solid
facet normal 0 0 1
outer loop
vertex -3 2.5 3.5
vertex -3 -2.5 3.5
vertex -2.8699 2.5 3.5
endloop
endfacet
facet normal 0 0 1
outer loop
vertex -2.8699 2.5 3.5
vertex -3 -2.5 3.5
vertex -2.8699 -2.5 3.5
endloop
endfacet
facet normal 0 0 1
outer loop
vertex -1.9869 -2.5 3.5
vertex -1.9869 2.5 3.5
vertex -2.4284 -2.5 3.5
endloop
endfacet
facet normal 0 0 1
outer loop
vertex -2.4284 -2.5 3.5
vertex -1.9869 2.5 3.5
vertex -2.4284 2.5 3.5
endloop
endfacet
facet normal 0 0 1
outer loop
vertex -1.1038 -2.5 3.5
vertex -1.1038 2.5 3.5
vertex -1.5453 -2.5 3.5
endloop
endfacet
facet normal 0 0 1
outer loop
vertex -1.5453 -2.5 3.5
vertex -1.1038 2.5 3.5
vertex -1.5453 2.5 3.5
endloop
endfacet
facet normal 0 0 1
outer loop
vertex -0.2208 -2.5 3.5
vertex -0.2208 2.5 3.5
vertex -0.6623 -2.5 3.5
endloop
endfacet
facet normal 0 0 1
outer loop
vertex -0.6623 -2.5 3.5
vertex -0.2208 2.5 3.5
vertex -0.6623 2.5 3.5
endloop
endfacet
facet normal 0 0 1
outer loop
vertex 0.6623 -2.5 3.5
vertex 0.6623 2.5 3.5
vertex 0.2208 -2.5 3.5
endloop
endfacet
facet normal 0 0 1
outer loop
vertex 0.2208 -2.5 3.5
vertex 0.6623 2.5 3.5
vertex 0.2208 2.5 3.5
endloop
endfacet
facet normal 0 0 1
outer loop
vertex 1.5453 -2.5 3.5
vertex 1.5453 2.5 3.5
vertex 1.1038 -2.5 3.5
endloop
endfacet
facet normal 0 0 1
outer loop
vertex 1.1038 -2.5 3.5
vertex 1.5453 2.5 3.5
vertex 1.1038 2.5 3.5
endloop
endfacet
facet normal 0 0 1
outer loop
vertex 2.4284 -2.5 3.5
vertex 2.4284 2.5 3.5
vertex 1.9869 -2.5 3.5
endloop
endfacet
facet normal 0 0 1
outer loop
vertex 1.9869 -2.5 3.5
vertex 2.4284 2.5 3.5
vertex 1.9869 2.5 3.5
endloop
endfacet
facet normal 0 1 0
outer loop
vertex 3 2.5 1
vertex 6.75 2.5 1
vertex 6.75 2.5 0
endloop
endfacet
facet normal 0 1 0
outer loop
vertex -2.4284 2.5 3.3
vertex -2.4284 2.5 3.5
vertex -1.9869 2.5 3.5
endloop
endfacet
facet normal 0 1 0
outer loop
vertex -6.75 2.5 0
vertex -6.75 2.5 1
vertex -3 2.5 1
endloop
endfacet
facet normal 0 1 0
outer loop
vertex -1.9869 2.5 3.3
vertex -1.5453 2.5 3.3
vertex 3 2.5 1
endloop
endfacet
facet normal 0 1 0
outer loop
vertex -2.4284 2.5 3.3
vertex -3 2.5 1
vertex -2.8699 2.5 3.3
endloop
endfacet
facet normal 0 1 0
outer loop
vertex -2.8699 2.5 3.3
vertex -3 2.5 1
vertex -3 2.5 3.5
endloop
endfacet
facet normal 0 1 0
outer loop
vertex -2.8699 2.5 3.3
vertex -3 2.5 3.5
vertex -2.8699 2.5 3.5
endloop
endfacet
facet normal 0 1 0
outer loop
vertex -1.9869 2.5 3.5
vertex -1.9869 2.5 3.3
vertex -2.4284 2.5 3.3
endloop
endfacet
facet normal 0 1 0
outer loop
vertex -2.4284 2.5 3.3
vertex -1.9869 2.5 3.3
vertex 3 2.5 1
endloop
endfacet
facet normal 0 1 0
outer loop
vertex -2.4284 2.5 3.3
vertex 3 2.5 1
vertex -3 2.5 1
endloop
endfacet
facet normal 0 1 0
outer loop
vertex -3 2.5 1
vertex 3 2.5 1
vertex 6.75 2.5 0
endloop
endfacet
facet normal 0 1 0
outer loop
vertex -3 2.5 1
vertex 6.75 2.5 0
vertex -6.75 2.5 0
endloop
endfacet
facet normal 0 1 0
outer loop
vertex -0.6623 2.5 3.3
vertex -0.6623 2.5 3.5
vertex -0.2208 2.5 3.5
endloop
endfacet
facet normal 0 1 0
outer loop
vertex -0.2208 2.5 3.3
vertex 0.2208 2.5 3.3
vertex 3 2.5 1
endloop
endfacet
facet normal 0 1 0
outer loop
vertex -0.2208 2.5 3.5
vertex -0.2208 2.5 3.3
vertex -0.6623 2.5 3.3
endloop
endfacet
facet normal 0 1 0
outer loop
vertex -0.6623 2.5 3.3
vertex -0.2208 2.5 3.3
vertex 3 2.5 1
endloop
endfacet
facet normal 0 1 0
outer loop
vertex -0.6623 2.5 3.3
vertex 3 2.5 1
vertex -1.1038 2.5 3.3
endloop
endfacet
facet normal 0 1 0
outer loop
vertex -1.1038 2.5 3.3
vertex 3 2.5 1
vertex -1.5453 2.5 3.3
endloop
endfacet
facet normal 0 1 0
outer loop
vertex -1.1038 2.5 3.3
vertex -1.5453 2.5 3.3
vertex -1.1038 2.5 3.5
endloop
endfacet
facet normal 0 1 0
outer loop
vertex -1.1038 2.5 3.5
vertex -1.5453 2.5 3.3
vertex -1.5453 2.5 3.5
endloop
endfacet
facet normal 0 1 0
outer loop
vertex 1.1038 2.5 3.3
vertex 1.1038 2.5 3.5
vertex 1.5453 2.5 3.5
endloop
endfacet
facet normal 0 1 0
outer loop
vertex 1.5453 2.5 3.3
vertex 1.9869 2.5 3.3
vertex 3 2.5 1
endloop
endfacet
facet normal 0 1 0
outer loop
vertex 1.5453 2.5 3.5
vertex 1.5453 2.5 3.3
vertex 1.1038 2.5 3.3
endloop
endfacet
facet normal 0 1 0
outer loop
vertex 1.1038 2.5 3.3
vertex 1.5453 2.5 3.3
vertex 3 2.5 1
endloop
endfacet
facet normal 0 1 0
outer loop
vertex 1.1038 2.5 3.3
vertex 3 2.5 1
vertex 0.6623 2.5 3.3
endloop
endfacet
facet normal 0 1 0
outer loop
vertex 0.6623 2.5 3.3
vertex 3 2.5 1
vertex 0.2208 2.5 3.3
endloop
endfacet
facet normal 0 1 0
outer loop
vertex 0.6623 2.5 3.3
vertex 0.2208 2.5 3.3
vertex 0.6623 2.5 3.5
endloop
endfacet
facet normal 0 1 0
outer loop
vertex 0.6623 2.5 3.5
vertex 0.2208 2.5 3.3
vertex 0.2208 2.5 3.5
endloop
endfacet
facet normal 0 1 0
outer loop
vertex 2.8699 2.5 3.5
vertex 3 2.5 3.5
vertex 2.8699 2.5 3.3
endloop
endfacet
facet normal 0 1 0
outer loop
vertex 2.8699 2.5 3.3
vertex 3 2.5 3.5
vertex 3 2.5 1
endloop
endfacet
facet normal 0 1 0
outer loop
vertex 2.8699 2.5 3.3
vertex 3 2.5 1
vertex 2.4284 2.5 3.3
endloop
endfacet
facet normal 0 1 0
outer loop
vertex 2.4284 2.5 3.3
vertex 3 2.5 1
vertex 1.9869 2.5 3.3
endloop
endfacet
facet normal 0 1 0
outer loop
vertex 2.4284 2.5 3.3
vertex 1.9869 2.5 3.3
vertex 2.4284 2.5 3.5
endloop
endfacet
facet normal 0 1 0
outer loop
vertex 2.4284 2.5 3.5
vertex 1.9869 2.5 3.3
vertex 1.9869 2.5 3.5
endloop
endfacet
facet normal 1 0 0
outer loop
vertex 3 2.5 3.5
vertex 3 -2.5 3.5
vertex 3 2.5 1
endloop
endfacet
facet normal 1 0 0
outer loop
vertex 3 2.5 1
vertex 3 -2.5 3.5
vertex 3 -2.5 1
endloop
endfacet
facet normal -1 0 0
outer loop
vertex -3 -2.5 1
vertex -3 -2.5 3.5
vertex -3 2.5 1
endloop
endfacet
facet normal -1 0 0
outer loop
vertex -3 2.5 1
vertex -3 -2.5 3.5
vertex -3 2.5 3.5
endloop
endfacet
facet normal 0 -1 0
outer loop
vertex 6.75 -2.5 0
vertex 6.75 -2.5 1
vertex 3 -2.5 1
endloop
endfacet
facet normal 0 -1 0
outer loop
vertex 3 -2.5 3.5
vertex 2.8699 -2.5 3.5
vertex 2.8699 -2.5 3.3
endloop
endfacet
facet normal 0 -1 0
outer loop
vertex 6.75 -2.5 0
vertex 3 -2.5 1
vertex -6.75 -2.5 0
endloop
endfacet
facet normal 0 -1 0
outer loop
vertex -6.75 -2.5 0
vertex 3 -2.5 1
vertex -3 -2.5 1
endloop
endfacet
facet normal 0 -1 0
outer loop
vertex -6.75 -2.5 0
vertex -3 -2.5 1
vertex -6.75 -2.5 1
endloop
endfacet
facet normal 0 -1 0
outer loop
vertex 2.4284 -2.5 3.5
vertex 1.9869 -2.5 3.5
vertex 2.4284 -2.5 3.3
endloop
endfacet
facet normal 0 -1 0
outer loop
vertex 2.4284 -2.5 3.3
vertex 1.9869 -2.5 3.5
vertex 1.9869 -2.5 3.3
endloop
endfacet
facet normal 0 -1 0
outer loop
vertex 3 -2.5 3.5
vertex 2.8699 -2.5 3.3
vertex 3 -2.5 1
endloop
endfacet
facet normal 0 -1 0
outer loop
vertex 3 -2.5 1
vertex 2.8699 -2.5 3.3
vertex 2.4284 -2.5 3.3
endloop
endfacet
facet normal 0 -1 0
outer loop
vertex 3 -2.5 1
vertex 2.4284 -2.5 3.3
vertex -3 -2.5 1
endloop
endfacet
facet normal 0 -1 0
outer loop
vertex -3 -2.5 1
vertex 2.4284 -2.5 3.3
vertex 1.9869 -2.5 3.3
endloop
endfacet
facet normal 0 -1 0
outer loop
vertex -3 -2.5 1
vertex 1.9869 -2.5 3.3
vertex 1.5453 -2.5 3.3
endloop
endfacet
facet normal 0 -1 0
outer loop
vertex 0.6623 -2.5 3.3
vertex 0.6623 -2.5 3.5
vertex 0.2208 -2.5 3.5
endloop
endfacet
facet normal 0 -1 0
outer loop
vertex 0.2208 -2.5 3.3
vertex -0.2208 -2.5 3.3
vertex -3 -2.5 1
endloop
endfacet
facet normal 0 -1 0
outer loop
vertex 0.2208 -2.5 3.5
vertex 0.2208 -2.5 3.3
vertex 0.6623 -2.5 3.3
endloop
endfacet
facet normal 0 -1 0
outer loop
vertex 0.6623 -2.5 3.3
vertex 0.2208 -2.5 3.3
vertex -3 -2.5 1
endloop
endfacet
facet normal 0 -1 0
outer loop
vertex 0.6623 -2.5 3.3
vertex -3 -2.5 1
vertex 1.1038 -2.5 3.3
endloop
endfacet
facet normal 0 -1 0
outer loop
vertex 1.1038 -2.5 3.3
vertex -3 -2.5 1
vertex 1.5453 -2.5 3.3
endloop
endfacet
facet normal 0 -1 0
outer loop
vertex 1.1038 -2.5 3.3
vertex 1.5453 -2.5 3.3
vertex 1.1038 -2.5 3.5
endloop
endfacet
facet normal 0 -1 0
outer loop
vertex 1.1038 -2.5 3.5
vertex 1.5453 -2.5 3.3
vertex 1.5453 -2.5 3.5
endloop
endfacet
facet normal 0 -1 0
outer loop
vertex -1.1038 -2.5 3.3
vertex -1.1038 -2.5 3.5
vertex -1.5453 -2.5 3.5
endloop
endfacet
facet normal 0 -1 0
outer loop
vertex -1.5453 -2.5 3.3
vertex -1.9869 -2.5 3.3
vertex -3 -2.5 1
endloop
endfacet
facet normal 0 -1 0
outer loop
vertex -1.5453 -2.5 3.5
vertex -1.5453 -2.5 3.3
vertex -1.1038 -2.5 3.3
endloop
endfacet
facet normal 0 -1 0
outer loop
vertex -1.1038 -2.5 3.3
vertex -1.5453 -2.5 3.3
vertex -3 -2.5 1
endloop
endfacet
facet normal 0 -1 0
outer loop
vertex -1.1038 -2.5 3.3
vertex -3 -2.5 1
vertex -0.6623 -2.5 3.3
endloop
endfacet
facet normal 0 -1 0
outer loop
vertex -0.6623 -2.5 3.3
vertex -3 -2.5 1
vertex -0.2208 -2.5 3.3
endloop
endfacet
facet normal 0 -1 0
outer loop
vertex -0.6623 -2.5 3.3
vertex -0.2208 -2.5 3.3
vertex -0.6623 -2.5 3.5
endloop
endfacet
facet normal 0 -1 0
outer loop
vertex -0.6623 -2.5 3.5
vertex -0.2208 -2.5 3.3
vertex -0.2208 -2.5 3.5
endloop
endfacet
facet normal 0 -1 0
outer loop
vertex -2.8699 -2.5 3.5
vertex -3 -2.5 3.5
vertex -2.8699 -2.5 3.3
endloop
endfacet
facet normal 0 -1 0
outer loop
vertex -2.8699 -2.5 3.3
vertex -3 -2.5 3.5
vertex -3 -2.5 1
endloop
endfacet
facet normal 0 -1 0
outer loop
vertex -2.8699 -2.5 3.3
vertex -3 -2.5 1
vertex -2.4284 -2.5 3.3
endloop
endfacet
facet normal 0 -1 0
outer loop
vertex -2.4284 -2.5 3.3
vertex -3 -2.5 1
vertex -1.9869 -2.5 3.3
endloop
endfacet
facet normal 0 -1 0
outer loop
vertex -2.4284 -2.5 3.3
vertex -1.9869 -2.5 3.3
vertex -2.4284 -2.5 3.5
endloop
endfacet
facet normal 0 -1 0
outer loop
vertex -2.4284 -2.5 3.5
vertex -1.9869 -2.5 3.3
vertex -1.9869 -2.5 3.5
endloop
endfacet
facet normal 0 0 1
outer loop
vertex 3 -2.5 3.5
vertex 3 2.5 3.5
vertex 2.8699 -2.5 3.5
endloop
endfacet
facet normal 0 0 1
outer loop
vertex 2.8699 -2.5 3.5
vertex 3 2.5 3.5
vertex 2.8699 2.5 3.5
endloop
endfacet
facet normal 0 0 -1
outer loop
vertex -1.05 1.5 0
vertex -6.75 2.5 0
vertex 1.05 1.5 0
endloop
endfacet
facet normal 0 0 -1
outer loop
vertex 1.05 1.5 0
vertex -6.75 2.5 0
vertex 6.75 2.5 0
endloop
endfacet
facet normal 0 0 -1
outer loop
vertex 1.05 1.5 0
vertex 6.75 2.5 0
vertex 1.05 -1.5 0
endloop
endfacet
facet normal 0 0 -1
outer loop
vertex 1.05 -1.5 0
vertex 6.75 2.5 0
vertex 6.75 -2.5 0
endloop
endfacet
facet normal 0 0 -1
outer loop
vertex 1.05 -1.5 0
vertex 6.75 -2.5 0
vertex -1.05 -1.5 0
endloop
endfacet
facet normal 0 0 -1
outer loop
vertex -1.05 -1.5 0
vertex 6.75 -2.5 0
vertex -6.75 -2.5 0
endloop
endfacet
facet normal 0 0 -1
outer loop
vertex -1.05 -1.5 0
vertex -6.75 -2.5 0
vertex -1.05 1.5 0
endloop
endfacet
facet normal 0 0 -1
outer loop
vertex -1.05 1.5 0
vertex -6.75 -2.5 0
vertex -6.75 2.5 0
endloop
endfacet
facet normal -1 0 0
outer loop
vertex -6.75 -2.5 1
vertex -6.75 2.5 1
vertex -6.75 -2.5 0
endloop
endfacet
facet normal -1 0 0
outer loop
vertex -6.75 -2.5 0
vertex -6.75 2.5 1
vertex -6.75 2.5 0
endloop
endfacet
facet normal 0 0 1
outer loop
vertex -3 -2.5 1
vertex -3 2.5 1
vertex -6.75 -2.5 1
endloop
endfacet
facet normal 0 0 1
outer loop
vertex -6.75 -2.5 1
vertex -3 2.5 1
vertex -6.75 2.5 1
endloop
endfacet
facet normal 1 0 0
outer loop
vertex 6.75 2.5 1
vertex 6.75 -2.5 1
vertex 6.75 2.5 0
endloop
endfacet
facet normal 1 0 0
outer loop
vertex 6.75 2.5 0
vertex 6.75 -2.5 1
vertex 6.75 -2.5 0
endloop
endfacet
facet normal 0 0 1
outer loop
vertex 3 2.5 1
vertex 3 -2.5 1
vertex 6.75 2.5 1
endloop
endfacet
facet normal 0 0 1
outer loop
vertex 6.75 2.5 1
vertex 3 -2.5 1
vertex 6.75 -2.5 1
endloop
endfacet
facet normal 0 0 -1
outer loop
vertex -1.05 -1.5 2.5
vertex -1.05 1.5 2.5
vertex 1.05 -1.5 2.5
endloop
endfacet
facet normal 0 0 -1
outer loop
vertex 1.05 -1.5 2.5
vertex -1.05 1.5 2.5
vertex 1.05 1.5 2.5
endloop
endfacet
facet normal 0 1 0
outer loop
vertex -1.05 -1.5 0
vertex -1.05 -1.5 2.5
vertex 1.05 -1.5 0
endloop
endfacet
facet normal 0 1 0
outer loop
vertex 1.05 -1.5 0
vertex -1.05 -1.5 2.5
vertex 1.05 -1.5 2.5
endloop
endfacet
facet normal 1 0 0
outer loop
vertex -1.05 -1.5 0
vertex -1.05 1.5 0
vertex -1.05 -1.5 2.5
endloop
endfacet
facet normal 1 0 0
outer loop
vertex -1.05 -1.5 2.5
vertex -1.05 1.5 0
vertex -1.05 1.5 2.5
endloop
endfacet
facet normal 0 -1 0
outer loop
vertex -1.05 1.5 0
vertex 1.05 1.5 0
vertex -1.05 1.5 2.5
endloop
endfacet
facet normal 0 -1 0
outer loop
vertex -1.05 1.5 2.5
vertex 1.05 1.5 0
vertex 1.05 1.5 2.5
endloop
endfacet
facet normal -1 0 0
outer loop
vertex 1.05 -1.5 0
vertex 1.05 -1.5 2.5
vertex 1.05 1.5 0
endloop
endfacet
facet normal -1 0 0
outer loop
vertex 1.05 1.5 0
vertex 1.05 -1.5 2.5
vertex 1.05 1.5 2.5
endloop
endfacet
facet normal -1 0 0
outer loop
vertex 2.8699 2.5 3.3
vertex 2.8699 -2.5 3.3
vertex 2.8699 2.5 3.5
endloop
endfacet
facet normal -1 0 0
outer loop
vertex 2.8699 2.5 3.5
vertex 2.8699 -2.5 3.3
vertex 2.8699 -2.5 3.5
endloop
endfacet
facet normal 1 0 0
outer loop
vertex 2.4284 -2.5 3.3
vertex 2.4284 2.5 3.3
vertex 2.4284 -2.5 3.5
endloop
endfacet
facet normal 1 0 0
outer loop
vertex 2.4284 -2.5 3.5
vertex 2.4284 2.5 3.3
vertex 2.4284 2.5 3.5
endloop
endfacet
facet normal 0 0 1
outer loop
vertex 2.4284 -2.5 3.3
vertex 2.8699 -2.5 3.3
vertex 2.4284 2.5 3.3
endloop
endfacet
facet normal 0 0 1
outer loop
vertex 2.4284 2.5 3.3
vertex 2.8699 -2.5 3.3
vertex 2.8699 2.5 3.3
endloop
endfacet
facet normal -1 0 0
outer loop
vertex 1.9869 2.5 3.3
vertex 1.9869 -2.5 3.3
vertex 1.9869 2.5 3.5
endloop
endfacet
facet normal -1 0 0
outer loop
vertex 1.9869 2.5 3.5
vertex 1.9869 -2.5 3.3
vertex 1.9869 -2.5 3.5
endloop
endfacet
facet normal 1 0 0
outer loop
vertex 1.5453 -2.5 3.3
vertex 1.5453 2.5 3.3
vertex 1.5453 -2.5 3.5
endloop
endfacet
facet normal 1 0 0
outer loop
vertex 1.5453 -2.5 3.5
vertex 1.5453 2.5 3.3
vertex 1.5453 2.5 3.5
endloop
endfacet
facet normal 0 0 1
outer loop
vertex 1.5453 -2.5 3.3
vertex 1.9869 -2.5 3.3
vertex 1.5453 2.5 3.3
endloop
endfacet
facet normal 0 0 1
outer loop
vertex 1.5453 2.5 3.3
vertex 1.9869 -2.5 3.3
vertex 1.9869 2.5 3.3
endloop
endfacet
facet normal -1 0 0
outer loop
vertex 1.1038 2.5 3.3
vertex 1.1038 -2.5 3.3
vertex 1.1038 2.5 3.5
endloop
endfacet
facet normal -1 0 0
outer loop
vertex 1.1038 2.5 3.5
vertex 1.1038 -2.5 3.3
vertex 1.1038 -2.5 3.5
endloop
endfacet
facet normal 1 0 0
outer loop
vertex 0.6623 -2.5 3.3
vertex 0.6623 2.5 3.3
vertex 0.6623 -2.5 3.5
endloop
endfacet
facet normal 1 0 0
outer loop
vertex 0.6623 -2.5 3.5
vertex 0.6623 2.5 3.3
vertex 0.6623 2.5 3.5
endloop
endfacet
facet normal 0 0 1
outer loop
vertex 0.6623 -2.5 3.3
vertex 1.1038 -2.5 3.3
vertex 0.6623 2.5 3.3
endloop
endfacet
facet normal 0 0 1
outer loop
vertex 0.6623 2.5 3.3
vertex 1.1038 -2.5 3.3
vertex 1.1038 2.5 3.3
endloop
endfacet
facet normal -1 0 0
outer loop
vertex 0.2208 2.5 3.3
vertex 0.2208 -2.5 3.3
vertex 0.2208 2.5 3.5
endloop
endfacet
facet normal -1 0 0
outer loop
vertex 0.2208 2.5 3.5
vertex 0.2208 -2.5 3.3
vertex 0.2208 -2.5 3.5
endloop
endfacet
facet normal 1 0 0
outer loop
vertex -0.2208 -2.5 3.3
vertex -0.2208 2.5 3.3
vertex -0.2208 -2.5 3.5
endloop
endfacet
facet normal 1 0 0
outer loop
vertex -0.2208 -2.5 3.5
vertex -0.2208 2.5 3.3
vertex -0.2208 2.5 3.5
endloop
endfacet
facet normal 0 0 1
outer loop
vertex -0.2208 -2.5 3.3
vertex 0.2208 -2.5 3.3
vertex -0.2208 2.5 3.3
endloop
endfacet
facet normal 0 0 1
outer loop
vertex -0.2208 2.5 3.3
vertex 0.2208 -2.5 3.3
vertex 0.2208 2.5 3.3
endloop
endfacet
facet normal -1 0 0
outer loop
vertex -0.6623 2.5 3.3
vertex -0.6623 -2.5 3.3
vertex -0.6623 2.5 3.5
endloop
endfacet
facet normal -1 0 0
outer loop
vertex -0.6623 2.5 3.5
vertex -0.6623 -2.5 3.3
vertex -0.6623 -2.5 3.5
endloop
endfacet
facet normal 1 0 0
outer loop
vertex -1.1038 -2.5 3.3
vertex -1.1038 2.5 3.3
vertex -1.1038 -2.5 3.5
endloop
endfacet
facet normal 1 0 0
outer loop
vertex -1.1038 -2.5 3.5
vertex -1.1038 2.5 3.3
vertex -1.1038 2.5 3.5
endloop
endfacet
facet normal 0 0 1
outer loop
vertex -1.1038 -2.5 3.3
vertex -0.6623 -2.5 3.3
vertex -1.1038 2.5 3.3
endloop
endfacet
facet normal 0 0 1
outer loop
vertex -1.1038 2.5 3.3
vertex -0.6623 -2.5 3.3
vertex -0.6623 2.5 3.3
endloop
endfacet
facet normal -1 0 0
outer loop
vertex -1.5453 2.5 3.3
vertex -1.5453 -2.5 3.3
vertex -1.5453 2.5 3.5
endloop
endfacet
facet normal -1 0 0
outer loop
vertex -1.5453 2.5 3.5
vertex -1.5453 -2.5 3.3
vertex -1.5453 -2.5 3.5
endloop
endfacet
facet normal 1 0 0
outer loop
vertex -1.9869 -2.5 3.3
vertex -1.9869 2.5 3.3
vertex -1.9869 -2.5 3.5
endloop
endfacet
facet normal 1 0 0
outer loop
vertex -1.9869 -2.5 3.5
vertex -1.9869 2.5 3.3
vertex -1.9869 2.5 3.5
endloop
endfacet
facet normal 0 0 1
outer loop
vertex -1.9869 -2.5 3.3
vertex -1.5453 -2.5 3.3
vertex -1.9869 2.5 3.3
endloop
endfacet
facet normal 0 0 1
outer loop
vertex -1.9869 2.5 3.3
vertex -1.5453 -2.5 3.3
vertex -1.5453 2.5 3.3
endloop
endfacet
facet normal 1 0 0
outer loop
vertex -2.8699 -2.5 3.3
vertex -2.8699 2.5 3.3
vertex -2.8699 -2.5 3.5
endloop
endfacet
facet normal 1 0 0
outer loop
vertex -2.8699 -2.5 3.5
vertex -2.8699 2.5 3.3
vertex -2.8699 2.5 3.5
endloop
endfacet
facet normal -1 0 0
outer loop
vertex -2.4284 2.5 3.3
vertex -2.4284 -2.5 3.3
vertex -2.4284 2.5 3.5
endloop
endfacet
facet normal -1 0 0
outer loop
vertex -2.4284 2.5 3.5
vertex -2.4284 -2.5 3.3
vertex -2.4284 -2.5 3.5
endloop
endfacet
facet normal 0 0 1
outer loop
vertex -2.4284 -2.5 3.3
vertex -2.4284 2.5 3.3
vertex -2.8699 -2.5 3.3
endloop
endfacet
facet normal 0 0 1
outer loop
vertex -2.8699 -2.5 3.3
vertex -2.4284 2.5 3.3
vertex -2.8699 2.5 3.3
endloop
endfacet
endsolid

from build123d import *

# Parameters (mm, degrees)
SKETCH1_W           = 6
SKETCH1_H           = 5
BOSS_EXTRUDE1_DEPTH = 3.5
SKETCH1_3_W         = 3.75
SKETCH1_3_H         = 5
BOSS_EXTRUDE2_DEPTH = 1
CUT_EXTRUDE1_START  = -2.5
SKETCH2_W           = 2.1
SKETCH2_H           = 3
CUT_EXTRUDE1_DEPTH  = 2.5
SKETCH3_W           = 0.441524735
SKETCH3_H           = 5
SKETCH3_W_2         = 0.441524734
CUT_EXTRUDE2_DEPTH  = 0.2


with BuildPart() as part:
    # Sketch1 → Boss-Extrude1 (new body)
    with BuildSketch(Plane.XY):
        Rectangle(SKETCH1_W, SKETCH1_H)
    extrude(amount=BOSS_EXTRUDE1_DEPTH)

    # Sketch1<3> → Boss-Extrude2 (add)
    with BuildSketch(Plane.XY):
        with Locations((-4.875, 0)):
            Rectangle(SKETCH1_3_W, SKETCH1_3_H)
        with Locations((4.875, 0)):
            Rectangle(SKETCH1_3_W, SKETCH1_3_H)
    extrude(amount=BOSS_EXTRUDE2_DEPTH)

    # Sketch2 → Cut-Extrude1 (cut)
    with BuildSketch(Plane(origin=(0, 0, 0), x_dir=(-1, 0, 0), z_dir=(0, 0, -1)).offset(CUT_EXTRUDE1_START)):
        Rectangle(SKETCH2_W, SKETCH2_H)
    extrude(amount=CUT_EXTRUDE1_DEPTH, mode=Mode.SUBTRACT)

    # Sketch3 → Cut-Extrude2 (cut)
    with BuildSketch(Plane.XY.offset(3.5)):
        with Locations((-2.64914841, 0)):
            Rectangle(SKETCH3_W, SKETCH3_H)
        with Locations((-1.766098939, 0)):
            Rectangle(SKETCH3_W, SKETCH3_H)
        with Locations((-0.88304947, 0)):
            Rectangle(SKETCH3_W, SKETCH3_H)
        Rectangle(SKETCH3_W_2, SKETCH3_H)
        with Locations((0.88304947, 0)):
            Rectangle(SKETCH3_W, SKETCH3_H)
        with Locations((1.766098939, 0)):
            Rectangle(SKETCH3_W, SKETCH3_H)
        with Locations((2.64914841, 0)):
            Rectangle(SKETCH3_W, SKETCH3_H)
    extrude(amount=-CUT_EXTRUDE2_DEPTH, mode=Mode.SUBTRACT)


solid = part.part
